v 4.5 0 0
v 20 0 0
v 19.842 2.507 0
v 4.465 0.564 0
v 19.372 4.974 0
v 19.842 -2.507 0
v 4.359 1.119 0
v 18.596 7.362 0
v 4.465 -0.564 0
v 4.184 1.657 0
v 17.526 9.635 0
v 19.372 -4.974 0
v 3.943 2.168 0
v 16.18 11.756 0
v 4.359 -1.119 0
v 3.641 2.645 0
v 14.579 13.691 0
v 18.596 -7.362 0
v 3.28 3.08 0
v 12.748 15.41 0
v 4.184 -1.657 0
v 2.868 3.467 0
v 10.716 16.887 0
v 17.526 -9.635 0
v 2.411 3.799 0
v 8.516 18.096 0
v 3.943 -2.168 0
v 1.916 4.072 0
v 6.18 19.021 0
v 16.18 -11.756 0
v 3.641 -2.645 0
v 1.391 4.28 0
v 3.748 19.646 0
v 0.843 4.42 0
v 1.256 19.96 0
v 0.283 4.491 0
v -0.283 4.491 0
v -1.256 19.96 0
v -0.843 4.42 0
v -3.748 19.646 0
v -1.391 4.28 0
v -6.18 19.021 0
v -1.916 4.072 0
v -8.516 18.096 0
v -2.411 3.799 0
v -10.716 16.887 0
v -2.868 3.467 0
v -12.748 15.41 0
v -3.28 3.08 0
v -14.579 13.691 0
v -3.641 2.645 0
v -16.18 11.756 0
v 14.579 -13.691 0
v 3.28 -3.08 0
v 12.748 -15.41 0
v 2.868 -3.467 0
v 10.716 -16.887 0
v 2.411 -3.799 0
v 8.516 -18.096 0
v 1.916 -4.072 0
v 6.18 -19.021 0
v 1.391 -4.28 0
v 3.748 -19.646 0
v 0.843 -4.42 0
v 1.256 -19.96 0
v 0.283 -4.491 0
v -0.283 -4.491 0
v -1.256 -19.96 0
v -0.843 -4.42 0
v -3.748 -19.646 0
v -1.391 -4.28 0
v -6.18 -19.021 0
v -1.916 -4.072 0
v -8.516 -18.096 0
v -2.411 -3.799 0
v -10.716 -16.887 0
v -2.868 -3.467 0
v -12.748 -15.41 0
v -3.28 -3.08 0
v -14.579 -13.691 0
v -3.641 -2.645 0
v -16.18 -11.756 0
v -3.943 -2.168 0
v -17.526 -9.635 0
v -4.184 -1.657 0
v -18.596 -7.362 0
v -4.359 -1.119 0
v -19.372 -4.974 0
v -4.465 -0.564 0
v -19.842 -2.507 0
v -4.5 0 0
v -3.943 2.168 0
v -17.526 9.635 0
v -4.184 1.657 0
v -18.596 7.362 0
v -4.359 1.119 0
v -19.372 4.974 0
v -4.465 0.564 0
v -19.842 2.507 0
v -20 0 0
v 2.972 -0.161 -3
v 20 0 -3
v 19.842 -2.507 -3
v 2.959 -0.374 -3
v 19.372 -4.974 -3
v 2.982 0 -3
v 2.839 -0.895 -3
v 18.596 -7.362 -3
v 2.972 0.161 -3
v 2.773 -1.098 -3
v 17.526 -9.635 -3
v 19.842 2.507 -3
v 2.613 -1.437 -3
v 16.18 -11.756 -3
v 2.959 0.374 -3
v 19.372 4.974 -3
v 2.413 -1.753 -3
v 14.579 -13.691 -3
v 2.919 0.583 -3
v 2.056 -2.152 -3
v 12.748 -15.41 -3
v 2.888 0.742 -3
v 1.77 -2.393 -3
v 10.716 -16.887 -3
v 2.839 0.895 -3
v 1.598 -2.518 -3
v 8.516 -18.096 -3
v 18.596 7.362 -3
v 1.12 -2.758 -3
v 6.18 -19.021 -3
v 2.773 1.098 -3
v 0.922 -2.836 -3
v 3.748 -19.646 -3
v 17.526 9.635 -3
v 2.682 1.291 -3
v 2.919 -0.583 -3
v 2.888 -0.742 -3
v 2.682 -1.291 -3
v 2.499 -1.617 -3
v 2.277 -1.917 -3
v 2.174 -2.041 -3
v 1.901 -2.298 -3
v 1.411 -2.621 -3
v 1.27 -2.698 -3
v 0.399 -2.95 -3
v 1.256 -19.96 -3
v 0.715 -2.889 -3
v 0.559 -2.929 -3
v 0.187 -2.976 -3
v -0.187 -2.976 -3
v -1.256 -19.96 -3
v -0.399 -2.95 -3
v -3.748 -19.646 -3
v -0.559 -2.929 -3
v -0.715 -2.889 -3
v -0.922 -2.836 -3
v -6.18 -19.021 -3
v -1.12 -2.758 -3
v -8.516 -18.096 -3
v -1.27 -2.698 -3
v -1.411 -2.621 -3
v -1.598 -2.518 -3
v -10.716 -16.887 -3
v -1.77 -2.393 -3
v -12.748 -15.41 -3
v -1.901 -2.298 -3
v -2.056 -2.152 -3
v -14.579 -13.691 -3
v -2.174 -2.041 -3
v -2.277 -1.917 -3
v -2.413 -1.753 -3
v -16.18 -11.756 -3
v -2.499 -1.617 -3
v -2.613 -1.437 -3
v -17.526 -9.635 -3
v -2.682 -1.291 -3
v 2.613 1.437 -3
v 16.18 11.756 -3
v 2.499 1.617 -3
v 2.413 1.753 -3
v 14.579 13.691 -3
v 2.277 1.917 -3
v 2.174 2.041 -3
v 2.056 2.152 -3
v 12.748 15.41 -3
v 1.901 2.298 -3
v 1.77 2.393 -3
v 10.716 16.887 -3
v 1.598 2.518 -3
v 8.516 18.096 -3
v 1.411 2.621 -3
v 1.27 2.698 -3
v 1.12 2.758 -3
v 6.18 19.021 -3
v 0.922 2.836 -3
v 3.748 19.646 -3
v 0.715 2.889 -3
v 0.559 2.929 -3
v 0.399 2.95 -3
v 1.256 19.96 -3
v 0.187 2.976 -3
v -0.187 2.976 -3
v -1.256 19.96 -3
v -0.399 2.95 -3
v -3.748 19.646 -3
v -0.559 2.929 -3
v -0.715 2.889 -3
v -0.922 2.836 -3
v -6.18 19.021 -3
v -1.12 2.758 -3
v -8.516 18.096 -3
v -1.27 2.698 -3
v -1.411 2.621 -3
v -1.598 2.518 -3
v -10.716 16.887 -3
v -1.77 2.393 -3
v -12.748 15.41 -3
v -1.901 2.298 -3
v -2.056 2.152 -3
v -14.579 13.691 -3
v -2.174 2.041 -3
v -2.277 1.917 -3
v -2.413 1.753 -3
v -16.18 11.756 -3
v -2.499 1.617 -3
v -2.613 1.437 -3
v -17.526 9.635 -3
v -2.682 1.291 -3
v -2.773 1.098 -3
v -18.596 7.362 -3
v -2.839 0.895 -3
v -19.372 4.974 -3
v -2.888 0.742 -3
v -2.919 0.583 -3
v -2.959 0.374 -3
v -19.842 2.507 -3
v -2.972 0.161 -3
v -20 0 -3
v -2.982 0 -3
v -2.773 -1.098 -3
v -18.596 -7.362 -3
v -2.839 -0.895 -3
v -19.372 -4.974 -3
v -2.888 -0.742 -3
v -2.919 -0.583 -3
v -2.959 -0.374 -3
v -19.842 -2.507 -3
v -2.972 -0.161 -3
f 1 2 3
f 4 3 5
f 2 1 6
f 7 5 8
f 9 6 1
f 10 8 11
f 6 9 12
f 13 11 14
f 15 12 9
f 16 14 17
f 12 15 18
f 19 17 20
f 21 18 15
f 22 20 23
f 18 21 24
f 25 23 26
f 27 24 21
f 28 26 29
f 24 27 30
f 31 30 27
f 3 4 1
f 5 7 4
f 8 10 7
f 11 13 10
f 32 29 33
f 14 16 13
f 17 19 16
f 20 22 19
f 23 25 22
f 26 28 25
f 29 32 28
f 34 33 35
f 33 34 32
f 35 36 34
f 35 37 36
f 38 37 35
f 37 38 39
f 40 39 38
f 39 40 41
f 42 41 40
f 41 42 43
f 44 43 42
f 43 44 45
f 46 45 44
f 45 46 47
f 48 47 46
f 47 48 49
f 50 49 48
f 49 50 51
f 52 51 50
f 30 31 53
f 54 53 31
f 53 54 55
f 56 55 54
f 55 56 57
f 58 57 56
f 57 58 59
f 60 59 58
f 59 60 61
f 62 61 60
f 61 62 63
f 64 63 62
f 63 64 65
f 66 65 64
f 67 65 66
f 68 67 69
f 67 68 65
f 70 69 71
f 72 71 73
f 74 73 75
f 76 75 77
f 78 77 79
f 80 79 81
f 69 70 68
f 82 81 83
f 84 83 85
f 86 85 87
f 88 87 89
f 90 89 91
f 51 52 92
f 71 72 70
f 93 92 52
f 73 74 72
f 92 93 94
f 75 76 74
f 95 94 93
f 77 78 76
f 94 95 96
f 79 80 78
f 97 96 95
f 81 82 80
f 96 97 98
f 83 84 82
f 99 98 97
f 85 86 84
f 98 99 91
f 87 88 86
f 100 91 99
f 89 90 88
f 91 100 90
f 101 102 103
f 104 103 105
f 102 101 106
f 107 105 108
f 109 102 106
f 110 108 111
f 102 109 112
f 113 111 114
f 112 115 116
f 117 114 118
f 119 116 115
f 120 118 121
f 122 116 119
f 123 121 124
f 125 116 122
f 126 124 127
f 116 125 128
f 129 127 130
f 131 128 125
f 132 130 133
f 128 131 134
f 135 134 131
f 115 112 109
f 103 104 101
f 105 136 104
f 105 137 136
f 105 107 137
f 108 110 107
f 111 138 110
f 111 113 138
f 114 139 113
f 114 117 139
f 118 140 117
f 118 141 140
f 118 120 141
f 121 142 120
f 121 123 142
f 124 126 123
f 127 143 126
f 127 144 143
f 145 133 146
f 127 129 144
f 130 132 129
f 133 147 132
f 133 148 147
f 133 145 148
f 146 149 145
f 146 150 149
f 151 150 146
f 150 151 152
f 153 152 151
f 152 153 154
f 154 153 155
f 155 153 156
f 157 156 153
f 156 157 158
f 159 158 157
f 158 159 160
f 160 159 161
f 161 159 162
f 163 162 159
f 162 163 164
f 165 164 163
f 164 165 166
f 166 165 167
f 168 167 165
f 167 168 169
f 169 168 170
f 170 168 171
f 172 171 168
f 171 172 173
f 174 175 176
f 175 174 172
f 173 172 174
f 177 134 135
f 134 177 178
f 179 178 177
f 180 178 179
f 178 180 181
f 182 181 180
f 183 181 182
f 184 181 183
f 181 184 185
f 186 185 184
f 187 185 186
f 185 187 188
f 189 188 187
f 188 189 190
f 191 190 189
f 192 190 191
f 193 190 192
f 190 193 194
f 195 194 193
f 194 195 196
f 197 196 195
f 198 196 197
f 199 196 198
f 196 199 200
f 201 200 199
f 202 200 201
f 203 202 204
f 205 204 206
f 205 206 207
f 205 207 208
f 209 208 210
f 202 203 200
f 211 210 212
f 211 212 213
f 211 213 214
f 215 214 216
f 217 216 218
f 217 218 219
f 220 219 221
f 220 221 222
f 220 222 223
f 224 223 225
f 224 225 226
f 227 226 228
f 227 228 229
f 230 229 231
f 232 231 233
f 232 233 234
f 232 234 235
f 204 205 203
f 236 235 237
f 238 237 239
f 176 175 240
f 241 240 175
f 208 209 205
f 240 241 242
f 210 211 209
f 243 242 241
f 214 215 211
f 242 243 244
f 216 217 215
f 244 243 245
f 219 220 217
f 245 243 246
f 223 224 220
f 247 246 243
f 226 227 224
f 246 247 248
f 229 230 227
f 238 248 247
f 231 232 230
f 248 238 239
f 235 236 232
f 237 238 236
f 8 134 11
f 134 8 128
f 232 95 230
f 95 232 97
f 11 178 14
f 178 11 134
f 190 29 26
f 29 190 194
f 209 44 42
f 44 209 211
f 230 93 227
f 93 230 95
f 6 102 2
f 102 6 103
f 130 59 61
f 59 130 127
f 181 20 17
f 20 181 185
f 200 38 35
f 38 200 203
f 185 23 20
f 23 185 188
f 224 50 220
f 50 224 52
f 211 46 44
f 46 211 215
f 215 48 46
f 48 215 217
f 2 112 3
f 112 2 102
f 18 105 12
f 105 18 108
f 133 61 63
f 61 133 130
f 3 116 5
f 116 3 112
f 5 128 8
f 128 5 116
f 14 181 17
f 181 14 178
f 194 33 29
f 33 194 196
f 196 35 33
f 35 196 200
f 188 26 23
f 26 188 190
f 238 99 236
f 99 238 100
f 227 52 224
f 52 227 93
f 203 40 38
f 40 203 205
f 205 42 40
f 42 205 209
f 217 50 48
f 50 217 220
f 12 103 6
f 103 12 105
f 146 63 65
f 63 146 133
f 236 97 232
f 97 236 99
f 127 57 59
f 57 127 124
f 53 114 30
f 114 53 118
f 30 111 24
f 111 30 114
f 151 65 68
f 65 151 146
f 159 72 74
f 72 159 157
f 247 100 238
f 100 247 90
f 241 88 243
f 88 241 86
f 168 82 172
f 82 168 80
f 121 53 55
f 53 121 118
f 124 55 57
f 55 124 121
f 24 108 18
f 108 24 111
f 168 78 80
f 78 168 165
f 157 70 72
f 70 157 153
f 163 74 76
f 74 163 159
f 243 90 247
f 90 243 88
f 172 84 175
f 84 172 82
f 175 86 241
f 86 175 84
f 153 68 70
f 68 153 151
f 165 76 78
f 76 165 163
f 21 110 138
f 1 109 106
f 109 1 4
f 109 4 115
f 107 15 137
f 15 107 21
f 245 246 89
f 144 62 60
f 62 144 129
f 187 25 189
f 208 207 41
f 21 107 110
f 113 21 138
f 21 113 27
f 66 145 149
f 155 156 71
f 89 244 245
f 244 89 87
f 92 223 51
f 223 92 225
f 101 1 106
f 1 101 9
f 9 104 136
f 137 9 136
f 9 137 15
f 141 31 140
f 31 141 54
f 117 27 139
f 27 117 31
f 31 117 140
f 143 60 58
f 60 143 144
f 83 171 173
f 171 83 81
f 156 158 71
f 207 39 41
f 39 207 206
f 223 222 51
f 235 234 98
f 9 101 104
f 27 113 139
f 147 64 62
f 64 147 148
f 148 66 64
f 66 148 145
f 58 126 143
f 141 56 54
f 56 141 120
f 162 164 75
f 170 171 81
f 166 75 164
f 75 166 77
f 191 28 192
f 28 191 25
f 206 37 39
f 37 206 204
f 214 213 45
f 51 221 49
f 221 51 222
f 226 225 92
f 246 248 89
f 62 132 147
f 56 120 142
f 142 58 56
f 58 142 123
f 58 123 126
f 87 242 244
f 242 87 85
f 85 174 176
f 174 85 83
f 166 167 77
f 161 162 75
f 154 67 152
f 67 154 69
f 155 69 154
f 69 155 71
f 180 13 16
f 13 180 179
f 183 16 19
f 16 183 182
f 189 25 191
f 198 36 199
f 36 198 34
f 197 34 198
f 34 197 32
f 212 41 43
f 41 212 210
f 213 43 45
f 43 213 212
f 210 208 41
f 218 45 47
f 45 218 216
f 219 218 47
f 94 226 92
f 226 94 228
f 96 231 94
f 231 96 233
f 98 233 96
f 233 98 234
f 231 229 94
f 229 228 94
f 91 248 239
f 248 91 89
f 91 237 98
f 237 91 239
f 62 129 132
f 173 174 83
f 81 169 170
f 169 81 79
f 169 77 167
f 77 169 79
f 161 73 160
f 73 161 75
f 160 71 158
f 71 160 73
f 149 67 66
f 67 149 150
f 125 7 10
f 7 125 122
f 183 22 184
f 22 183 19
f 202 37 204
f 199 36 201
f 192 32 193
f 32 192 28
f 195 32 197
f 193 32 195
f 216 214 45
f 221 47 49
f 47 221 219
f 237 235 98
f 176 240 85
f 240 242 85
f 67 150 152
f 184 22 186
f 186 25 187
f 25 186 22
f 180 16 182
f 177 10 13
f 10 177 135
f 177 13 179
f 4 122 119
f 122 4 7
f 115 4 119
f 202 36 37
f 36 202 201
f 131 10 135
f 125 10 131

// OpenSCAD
$fn = 50;


difference() {
	union() {
		translate(v = [0, 0, -3.0000000000]) {
			cylinder(h = 3, r = 10.0000000000);
		}
		translate(v = [0, 0, -3.0000000000]) {
			cylinder(h = 3, r = 20.0000000000);
		}
	}
	union() {
		translate(v = [0, 0, 0]) {
			rotate(a = [0, 0, 0]) {
				difference() {
					union() {
						#translate(v = [0, 0, -3.0000000000]) {
							cylinder(h = 3, r = 2.2500000000);
						}
						#translate(v = [0, 0, -4.2000000000]) {
							cylinder(h = 4.2000000000, r1 = 2.3750000000, r2 = 4.5000000000);
						}
						#translate(v = [0, 0, -3.0000000000]) {
							cylinder(h = 3, r = 2.3750000000);
						}
						#translate(v = [0, 0, -3.0000000000]) {
							cylinder(h = 3, r = 2.2500000000);
						}
					}
					union();
				}
			}
		}
	}
}
